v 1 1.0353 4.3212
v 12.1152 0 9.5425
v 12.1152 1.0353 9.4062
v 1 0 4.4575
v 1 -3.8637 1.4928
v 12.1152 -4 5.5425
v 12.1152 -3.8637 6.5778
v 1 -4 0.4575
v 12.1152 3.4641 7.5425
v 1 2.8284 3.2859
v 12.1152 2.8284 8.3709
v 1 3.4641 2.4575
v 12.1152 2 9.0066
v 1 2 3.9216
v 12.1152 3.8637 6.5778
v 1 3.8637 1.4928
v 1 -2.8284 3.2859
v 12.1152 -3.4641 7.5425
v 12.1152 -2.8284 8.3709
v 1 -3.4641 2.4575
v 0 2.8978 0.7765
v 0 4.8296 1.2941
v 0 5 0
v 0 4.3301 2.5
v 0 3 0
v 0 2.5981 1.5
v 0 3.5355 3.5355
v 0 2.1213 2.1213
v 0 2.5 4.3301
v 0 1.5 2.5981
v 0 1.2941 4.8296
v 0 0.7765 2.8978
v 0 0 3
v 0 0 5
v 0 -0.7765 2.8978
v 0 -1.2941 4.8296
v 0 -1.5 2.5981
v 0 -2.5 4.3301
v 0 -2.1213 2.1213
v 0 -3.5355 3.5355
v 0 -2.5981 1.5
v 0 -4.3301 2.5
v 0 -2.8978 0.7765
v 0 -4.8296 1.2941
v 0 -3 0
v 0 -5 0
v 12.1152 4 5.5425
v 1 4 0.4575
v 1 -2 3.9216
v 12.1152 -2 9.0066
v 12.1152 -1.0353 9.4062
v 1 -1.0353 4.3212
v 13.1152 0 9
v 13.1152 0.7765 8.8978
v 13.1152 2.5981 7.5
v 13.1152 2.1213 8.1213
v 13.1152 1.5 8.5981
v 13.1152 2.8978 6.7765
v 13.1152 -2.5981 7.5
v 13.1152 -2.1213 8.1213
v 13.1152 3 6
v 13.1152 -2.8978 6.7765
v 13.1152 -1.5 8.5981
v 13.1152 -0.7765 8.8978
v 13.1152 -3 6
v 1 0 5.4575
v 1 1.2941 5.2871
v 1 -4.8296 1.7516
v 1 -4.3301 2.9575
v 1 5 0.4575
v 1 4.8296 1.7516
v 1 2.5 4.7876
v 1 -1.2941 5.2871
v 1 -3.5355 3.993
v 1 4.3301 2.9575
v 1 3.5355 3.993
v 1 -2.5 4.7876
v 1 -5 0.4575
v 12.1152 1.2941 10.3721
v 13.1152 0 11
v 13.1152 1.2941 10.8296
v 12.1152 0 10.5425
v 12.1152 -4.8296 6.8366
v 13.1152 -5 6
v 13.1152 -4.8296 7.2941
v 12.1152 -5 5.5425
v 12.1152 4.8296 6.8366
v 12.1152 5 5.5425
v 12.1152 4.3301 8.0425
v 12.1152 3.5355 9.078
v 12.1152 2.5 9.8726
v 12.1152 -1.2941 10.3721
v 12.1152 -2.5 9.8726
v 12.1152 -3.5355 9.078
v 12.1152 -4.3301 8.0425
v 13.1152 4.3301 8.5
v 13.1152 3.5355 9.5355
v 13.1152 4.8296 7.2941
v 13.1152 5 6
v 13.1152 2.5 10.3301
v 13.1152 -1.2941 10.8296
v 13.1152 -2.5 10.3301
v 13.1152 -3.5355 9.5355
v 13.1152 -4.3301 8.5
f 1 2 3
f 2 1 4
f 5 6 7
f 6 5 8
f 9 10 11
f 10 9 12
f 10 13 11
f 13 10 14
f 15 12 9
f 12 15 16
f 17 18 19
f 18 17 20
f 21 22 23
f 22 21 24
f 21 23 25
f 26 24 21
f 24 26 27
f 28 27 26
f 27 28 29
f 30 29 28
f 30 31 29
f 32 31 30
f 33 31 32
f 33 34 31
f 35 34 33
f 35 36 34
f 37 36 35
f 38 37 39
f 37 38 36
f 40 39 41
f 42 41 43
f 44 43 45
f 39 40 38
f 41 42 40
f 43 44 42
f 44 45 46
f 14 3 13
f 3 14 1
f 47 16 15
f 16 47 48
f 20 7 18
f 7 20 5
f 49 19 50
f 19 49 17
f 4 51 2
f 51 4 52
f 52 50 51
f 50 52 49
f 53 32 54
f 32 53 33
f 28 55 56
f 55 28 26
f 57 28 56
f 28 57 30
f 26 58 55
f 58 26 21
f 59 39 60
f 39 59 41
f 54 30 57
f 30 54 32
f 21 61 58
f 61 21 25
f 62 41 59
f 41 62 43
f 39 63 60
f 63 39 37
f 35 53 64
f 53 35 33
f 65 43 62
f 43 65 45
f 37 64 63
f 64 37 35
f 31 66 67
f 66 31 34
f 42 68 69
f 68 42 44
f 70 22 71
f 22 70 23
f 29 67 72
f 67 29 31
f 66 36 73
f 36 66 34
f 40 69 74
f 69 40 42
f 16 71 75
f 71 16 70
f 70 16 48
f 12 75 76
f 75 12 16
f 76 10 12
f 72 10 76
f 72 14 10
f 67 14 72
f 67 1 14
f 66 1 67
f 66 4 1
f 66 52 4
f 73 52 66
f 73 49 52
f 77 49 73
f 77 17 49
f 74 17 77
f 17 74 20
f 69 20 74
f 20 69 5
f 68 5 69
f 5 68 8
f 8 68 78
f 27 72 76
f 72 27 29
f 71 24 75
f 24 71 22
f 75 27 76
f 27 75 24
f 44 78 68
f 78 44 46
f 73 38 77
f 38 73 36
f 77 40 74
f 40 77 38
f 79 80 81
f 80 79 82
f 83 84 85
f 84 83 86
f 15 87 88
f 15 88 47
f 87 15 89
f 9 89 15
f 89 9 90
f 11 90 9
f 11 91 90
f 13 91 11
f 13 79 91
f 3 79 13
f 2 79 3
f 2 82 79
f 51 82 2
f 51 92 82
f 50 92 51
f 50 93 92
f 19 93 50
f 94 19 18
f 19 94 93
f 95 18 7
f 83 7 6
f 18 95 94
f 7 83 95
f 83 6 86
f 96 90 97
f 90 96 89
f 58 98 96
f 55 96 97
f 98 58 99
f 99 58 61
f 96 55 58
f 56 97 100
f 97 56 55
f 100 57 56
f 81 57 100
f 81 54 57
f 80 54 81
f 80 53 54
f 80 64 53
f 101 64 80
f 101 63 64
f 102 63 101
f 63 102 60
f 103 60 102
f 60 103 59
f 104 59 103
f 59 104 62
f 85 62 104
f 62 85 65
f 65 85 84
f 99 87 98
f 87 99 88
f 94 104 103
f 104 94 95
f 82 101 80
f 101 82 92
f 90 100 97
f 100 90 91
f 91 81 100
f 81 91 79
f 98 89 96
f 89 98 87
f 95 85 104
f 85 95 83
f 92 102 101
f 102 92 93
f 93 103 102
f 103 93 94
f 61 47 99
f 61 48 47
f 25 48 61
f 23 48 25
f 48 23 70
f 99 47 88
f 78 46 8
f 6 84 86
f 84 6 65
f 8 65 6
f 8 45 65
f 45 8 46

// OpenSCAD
// file: ../build_environments.scad
// build_environments.scad: modules to build level sections
//

module pool(diameter=10.0, wall_height=2.0, step_width=3.0, connections=[])
{
    difference() {
        union() {
        difference() {
            cylinder(h=0.5,r1=diameter+step_width,r2=diameter+step_width,$fn=48);
            translate([0,0,-0.1])
                cylinder(h=0.7,r1=diameter,r2=diameter,$fn=48);
        }
        difference() {
            cylinder(h=wall_height,r1=diameter+step_width+1.0,r2=diameter+step_width+1.0,$fn=48);
            translate([0,0,-0.1])
                cylinder(h=wall_height+0.2,r1=diameter+step_width,r2=diameter+step_width,$fn=48);
        }
        }
    
        for (c = connections)
        {
            rotate([0,90,0]) {
                angle = atan2(c[1],c[0]);
                rotate([-angle,0,0]) {
                    cylinder(h=diameter+5.0,r1=c[2],r2=c[2],$fn=48);
                }
            }
        }
    }
}

module straight(length=10.0, width=2.0, dy1=0.0, dy2=0.0, dz=0.0)
{
    dims = [0, 0, 0, 0, 0, (dz/length)];
    matrix = [
        [ 1, dims[0], dims[1], 0 ],
        [ dims[2], 1, dims[4], 0 ],
        [ dims[5], dims[3], 1, 0 ],
        [ 0, 0, 0, 1 ]
    ];
    multmatrix(matrix)
    difference() {
        translate([dy1,0,0])
        union() {
            rotate([0,90,0]) {
                difference() {
                    cylinder(h=(length-dy1-dy2),r1=width+1.0,r2=width+1.0,$fn=24);
                    translate([0,0,-0.1])
                        cylinder(h=(length-dy1-dy2+0.2),r1=width,r2=width,$fn=24);
                }
                difference() {
                    cylinder(h=1.0,r1=width+2.0,r2=width+2.0,$fn=24);
                    translate([0,0,-0.1])
                        cylinder(h=1.2,r1=width,r2=width,$fn=24);
                }
                translate([0,0,(length-dy1-dy2)-1.0]) {
                    difference() {
                        cylinder(h=1.0,r1=width+2.0,r2=width+2.0,$fn=24);
                        translate([0,0,-0.1])
                            cylinder(h=1.2,r1=width,r2=width,$fn=24);
                    }
                }
            }
        }
        translate([0,0,-(2*width+4.0)/2])
            cube([3*length,3*length,2*width+4.0],center=true);
    }
}

module curve(p0=[0,0], center=[0,0], dir=1, angle=0.0, width=2.0)
{
    radius = sqrt((p0[0]-center[0])*(p0[0]-center[0]) + (p0[1]-center[1])*(p0[1]-center[1]));
    if (dir == 0) {
        difference() {
            rotate([0,0,-90])
            difference() {
                rotate_extrude(angle = angle, convexity = 10, $fn=32)
                    translate([radius, 0, 0])
                        circle(r = width+1.0,$fn=24);
                rotate([0,0,-1.0])
                    rotate_extrude(angle = angle+2.0, convexity = 10, $fn=32)
                        translate([radius, 0, 0])
                            circle(r = width,$fn=24);
            }
            translate([0,0,-(2*width+4.0)/2])
                cube([5*radius,5*radius,2*width+4.0],center=true);
        }
    }
    else {
        difference() {
            rotate([0,0,90])
            difference() {
                rotate_extrude(angle = -angle, convexity = 10, $fn=32)
                    translate([radius, 0, 0])
                        circle(r = width+1.0,$fn=24);
                rotate([0,0,1.0])
                    rotate_extrude(angle = -angle-2.0, convexity = 10, $fn=32)
                        translate([radius, 0, 0])
                            circle(r = width,$fn=24);
            }
            translate([0,0,-(2*width+4.0)/2])
                cube([5*radius,5*radius,2*width+4.0],center=true);
        }
    }

}

// test pool
//pool(diameter=12.0000, wall_height=3.0000, step_width=3.0000, connections=[[0.0000,-26.0000,2.0000], [23.6074,0.0000,2.0000]]);

// test straight, slope
//straight(length=26.0000, width=2.0000, dy1=11.8322, dy2=6.7082, dz=0.0000);
//straight(length=29.1549, width=12.0000, dy1=0.0000, dy2=0.0000, dz=-15.0000);

// test curve
//curve(p0=[23.6074, 0.0000], center=[23.6074, 5.0000], dir=0, angle=60.1011, width=2.0000);
//curve(p0=[33.6426, 12.4219], center=[37.9771, 9.9295], dir=1, angle=120.4627, width=2.0000);
// main file
use <../build_environments.scad>;
straight(length=13.1152, width=3.0000, dy1=0.0000, dy2=0.0000, dz=6.0000);
